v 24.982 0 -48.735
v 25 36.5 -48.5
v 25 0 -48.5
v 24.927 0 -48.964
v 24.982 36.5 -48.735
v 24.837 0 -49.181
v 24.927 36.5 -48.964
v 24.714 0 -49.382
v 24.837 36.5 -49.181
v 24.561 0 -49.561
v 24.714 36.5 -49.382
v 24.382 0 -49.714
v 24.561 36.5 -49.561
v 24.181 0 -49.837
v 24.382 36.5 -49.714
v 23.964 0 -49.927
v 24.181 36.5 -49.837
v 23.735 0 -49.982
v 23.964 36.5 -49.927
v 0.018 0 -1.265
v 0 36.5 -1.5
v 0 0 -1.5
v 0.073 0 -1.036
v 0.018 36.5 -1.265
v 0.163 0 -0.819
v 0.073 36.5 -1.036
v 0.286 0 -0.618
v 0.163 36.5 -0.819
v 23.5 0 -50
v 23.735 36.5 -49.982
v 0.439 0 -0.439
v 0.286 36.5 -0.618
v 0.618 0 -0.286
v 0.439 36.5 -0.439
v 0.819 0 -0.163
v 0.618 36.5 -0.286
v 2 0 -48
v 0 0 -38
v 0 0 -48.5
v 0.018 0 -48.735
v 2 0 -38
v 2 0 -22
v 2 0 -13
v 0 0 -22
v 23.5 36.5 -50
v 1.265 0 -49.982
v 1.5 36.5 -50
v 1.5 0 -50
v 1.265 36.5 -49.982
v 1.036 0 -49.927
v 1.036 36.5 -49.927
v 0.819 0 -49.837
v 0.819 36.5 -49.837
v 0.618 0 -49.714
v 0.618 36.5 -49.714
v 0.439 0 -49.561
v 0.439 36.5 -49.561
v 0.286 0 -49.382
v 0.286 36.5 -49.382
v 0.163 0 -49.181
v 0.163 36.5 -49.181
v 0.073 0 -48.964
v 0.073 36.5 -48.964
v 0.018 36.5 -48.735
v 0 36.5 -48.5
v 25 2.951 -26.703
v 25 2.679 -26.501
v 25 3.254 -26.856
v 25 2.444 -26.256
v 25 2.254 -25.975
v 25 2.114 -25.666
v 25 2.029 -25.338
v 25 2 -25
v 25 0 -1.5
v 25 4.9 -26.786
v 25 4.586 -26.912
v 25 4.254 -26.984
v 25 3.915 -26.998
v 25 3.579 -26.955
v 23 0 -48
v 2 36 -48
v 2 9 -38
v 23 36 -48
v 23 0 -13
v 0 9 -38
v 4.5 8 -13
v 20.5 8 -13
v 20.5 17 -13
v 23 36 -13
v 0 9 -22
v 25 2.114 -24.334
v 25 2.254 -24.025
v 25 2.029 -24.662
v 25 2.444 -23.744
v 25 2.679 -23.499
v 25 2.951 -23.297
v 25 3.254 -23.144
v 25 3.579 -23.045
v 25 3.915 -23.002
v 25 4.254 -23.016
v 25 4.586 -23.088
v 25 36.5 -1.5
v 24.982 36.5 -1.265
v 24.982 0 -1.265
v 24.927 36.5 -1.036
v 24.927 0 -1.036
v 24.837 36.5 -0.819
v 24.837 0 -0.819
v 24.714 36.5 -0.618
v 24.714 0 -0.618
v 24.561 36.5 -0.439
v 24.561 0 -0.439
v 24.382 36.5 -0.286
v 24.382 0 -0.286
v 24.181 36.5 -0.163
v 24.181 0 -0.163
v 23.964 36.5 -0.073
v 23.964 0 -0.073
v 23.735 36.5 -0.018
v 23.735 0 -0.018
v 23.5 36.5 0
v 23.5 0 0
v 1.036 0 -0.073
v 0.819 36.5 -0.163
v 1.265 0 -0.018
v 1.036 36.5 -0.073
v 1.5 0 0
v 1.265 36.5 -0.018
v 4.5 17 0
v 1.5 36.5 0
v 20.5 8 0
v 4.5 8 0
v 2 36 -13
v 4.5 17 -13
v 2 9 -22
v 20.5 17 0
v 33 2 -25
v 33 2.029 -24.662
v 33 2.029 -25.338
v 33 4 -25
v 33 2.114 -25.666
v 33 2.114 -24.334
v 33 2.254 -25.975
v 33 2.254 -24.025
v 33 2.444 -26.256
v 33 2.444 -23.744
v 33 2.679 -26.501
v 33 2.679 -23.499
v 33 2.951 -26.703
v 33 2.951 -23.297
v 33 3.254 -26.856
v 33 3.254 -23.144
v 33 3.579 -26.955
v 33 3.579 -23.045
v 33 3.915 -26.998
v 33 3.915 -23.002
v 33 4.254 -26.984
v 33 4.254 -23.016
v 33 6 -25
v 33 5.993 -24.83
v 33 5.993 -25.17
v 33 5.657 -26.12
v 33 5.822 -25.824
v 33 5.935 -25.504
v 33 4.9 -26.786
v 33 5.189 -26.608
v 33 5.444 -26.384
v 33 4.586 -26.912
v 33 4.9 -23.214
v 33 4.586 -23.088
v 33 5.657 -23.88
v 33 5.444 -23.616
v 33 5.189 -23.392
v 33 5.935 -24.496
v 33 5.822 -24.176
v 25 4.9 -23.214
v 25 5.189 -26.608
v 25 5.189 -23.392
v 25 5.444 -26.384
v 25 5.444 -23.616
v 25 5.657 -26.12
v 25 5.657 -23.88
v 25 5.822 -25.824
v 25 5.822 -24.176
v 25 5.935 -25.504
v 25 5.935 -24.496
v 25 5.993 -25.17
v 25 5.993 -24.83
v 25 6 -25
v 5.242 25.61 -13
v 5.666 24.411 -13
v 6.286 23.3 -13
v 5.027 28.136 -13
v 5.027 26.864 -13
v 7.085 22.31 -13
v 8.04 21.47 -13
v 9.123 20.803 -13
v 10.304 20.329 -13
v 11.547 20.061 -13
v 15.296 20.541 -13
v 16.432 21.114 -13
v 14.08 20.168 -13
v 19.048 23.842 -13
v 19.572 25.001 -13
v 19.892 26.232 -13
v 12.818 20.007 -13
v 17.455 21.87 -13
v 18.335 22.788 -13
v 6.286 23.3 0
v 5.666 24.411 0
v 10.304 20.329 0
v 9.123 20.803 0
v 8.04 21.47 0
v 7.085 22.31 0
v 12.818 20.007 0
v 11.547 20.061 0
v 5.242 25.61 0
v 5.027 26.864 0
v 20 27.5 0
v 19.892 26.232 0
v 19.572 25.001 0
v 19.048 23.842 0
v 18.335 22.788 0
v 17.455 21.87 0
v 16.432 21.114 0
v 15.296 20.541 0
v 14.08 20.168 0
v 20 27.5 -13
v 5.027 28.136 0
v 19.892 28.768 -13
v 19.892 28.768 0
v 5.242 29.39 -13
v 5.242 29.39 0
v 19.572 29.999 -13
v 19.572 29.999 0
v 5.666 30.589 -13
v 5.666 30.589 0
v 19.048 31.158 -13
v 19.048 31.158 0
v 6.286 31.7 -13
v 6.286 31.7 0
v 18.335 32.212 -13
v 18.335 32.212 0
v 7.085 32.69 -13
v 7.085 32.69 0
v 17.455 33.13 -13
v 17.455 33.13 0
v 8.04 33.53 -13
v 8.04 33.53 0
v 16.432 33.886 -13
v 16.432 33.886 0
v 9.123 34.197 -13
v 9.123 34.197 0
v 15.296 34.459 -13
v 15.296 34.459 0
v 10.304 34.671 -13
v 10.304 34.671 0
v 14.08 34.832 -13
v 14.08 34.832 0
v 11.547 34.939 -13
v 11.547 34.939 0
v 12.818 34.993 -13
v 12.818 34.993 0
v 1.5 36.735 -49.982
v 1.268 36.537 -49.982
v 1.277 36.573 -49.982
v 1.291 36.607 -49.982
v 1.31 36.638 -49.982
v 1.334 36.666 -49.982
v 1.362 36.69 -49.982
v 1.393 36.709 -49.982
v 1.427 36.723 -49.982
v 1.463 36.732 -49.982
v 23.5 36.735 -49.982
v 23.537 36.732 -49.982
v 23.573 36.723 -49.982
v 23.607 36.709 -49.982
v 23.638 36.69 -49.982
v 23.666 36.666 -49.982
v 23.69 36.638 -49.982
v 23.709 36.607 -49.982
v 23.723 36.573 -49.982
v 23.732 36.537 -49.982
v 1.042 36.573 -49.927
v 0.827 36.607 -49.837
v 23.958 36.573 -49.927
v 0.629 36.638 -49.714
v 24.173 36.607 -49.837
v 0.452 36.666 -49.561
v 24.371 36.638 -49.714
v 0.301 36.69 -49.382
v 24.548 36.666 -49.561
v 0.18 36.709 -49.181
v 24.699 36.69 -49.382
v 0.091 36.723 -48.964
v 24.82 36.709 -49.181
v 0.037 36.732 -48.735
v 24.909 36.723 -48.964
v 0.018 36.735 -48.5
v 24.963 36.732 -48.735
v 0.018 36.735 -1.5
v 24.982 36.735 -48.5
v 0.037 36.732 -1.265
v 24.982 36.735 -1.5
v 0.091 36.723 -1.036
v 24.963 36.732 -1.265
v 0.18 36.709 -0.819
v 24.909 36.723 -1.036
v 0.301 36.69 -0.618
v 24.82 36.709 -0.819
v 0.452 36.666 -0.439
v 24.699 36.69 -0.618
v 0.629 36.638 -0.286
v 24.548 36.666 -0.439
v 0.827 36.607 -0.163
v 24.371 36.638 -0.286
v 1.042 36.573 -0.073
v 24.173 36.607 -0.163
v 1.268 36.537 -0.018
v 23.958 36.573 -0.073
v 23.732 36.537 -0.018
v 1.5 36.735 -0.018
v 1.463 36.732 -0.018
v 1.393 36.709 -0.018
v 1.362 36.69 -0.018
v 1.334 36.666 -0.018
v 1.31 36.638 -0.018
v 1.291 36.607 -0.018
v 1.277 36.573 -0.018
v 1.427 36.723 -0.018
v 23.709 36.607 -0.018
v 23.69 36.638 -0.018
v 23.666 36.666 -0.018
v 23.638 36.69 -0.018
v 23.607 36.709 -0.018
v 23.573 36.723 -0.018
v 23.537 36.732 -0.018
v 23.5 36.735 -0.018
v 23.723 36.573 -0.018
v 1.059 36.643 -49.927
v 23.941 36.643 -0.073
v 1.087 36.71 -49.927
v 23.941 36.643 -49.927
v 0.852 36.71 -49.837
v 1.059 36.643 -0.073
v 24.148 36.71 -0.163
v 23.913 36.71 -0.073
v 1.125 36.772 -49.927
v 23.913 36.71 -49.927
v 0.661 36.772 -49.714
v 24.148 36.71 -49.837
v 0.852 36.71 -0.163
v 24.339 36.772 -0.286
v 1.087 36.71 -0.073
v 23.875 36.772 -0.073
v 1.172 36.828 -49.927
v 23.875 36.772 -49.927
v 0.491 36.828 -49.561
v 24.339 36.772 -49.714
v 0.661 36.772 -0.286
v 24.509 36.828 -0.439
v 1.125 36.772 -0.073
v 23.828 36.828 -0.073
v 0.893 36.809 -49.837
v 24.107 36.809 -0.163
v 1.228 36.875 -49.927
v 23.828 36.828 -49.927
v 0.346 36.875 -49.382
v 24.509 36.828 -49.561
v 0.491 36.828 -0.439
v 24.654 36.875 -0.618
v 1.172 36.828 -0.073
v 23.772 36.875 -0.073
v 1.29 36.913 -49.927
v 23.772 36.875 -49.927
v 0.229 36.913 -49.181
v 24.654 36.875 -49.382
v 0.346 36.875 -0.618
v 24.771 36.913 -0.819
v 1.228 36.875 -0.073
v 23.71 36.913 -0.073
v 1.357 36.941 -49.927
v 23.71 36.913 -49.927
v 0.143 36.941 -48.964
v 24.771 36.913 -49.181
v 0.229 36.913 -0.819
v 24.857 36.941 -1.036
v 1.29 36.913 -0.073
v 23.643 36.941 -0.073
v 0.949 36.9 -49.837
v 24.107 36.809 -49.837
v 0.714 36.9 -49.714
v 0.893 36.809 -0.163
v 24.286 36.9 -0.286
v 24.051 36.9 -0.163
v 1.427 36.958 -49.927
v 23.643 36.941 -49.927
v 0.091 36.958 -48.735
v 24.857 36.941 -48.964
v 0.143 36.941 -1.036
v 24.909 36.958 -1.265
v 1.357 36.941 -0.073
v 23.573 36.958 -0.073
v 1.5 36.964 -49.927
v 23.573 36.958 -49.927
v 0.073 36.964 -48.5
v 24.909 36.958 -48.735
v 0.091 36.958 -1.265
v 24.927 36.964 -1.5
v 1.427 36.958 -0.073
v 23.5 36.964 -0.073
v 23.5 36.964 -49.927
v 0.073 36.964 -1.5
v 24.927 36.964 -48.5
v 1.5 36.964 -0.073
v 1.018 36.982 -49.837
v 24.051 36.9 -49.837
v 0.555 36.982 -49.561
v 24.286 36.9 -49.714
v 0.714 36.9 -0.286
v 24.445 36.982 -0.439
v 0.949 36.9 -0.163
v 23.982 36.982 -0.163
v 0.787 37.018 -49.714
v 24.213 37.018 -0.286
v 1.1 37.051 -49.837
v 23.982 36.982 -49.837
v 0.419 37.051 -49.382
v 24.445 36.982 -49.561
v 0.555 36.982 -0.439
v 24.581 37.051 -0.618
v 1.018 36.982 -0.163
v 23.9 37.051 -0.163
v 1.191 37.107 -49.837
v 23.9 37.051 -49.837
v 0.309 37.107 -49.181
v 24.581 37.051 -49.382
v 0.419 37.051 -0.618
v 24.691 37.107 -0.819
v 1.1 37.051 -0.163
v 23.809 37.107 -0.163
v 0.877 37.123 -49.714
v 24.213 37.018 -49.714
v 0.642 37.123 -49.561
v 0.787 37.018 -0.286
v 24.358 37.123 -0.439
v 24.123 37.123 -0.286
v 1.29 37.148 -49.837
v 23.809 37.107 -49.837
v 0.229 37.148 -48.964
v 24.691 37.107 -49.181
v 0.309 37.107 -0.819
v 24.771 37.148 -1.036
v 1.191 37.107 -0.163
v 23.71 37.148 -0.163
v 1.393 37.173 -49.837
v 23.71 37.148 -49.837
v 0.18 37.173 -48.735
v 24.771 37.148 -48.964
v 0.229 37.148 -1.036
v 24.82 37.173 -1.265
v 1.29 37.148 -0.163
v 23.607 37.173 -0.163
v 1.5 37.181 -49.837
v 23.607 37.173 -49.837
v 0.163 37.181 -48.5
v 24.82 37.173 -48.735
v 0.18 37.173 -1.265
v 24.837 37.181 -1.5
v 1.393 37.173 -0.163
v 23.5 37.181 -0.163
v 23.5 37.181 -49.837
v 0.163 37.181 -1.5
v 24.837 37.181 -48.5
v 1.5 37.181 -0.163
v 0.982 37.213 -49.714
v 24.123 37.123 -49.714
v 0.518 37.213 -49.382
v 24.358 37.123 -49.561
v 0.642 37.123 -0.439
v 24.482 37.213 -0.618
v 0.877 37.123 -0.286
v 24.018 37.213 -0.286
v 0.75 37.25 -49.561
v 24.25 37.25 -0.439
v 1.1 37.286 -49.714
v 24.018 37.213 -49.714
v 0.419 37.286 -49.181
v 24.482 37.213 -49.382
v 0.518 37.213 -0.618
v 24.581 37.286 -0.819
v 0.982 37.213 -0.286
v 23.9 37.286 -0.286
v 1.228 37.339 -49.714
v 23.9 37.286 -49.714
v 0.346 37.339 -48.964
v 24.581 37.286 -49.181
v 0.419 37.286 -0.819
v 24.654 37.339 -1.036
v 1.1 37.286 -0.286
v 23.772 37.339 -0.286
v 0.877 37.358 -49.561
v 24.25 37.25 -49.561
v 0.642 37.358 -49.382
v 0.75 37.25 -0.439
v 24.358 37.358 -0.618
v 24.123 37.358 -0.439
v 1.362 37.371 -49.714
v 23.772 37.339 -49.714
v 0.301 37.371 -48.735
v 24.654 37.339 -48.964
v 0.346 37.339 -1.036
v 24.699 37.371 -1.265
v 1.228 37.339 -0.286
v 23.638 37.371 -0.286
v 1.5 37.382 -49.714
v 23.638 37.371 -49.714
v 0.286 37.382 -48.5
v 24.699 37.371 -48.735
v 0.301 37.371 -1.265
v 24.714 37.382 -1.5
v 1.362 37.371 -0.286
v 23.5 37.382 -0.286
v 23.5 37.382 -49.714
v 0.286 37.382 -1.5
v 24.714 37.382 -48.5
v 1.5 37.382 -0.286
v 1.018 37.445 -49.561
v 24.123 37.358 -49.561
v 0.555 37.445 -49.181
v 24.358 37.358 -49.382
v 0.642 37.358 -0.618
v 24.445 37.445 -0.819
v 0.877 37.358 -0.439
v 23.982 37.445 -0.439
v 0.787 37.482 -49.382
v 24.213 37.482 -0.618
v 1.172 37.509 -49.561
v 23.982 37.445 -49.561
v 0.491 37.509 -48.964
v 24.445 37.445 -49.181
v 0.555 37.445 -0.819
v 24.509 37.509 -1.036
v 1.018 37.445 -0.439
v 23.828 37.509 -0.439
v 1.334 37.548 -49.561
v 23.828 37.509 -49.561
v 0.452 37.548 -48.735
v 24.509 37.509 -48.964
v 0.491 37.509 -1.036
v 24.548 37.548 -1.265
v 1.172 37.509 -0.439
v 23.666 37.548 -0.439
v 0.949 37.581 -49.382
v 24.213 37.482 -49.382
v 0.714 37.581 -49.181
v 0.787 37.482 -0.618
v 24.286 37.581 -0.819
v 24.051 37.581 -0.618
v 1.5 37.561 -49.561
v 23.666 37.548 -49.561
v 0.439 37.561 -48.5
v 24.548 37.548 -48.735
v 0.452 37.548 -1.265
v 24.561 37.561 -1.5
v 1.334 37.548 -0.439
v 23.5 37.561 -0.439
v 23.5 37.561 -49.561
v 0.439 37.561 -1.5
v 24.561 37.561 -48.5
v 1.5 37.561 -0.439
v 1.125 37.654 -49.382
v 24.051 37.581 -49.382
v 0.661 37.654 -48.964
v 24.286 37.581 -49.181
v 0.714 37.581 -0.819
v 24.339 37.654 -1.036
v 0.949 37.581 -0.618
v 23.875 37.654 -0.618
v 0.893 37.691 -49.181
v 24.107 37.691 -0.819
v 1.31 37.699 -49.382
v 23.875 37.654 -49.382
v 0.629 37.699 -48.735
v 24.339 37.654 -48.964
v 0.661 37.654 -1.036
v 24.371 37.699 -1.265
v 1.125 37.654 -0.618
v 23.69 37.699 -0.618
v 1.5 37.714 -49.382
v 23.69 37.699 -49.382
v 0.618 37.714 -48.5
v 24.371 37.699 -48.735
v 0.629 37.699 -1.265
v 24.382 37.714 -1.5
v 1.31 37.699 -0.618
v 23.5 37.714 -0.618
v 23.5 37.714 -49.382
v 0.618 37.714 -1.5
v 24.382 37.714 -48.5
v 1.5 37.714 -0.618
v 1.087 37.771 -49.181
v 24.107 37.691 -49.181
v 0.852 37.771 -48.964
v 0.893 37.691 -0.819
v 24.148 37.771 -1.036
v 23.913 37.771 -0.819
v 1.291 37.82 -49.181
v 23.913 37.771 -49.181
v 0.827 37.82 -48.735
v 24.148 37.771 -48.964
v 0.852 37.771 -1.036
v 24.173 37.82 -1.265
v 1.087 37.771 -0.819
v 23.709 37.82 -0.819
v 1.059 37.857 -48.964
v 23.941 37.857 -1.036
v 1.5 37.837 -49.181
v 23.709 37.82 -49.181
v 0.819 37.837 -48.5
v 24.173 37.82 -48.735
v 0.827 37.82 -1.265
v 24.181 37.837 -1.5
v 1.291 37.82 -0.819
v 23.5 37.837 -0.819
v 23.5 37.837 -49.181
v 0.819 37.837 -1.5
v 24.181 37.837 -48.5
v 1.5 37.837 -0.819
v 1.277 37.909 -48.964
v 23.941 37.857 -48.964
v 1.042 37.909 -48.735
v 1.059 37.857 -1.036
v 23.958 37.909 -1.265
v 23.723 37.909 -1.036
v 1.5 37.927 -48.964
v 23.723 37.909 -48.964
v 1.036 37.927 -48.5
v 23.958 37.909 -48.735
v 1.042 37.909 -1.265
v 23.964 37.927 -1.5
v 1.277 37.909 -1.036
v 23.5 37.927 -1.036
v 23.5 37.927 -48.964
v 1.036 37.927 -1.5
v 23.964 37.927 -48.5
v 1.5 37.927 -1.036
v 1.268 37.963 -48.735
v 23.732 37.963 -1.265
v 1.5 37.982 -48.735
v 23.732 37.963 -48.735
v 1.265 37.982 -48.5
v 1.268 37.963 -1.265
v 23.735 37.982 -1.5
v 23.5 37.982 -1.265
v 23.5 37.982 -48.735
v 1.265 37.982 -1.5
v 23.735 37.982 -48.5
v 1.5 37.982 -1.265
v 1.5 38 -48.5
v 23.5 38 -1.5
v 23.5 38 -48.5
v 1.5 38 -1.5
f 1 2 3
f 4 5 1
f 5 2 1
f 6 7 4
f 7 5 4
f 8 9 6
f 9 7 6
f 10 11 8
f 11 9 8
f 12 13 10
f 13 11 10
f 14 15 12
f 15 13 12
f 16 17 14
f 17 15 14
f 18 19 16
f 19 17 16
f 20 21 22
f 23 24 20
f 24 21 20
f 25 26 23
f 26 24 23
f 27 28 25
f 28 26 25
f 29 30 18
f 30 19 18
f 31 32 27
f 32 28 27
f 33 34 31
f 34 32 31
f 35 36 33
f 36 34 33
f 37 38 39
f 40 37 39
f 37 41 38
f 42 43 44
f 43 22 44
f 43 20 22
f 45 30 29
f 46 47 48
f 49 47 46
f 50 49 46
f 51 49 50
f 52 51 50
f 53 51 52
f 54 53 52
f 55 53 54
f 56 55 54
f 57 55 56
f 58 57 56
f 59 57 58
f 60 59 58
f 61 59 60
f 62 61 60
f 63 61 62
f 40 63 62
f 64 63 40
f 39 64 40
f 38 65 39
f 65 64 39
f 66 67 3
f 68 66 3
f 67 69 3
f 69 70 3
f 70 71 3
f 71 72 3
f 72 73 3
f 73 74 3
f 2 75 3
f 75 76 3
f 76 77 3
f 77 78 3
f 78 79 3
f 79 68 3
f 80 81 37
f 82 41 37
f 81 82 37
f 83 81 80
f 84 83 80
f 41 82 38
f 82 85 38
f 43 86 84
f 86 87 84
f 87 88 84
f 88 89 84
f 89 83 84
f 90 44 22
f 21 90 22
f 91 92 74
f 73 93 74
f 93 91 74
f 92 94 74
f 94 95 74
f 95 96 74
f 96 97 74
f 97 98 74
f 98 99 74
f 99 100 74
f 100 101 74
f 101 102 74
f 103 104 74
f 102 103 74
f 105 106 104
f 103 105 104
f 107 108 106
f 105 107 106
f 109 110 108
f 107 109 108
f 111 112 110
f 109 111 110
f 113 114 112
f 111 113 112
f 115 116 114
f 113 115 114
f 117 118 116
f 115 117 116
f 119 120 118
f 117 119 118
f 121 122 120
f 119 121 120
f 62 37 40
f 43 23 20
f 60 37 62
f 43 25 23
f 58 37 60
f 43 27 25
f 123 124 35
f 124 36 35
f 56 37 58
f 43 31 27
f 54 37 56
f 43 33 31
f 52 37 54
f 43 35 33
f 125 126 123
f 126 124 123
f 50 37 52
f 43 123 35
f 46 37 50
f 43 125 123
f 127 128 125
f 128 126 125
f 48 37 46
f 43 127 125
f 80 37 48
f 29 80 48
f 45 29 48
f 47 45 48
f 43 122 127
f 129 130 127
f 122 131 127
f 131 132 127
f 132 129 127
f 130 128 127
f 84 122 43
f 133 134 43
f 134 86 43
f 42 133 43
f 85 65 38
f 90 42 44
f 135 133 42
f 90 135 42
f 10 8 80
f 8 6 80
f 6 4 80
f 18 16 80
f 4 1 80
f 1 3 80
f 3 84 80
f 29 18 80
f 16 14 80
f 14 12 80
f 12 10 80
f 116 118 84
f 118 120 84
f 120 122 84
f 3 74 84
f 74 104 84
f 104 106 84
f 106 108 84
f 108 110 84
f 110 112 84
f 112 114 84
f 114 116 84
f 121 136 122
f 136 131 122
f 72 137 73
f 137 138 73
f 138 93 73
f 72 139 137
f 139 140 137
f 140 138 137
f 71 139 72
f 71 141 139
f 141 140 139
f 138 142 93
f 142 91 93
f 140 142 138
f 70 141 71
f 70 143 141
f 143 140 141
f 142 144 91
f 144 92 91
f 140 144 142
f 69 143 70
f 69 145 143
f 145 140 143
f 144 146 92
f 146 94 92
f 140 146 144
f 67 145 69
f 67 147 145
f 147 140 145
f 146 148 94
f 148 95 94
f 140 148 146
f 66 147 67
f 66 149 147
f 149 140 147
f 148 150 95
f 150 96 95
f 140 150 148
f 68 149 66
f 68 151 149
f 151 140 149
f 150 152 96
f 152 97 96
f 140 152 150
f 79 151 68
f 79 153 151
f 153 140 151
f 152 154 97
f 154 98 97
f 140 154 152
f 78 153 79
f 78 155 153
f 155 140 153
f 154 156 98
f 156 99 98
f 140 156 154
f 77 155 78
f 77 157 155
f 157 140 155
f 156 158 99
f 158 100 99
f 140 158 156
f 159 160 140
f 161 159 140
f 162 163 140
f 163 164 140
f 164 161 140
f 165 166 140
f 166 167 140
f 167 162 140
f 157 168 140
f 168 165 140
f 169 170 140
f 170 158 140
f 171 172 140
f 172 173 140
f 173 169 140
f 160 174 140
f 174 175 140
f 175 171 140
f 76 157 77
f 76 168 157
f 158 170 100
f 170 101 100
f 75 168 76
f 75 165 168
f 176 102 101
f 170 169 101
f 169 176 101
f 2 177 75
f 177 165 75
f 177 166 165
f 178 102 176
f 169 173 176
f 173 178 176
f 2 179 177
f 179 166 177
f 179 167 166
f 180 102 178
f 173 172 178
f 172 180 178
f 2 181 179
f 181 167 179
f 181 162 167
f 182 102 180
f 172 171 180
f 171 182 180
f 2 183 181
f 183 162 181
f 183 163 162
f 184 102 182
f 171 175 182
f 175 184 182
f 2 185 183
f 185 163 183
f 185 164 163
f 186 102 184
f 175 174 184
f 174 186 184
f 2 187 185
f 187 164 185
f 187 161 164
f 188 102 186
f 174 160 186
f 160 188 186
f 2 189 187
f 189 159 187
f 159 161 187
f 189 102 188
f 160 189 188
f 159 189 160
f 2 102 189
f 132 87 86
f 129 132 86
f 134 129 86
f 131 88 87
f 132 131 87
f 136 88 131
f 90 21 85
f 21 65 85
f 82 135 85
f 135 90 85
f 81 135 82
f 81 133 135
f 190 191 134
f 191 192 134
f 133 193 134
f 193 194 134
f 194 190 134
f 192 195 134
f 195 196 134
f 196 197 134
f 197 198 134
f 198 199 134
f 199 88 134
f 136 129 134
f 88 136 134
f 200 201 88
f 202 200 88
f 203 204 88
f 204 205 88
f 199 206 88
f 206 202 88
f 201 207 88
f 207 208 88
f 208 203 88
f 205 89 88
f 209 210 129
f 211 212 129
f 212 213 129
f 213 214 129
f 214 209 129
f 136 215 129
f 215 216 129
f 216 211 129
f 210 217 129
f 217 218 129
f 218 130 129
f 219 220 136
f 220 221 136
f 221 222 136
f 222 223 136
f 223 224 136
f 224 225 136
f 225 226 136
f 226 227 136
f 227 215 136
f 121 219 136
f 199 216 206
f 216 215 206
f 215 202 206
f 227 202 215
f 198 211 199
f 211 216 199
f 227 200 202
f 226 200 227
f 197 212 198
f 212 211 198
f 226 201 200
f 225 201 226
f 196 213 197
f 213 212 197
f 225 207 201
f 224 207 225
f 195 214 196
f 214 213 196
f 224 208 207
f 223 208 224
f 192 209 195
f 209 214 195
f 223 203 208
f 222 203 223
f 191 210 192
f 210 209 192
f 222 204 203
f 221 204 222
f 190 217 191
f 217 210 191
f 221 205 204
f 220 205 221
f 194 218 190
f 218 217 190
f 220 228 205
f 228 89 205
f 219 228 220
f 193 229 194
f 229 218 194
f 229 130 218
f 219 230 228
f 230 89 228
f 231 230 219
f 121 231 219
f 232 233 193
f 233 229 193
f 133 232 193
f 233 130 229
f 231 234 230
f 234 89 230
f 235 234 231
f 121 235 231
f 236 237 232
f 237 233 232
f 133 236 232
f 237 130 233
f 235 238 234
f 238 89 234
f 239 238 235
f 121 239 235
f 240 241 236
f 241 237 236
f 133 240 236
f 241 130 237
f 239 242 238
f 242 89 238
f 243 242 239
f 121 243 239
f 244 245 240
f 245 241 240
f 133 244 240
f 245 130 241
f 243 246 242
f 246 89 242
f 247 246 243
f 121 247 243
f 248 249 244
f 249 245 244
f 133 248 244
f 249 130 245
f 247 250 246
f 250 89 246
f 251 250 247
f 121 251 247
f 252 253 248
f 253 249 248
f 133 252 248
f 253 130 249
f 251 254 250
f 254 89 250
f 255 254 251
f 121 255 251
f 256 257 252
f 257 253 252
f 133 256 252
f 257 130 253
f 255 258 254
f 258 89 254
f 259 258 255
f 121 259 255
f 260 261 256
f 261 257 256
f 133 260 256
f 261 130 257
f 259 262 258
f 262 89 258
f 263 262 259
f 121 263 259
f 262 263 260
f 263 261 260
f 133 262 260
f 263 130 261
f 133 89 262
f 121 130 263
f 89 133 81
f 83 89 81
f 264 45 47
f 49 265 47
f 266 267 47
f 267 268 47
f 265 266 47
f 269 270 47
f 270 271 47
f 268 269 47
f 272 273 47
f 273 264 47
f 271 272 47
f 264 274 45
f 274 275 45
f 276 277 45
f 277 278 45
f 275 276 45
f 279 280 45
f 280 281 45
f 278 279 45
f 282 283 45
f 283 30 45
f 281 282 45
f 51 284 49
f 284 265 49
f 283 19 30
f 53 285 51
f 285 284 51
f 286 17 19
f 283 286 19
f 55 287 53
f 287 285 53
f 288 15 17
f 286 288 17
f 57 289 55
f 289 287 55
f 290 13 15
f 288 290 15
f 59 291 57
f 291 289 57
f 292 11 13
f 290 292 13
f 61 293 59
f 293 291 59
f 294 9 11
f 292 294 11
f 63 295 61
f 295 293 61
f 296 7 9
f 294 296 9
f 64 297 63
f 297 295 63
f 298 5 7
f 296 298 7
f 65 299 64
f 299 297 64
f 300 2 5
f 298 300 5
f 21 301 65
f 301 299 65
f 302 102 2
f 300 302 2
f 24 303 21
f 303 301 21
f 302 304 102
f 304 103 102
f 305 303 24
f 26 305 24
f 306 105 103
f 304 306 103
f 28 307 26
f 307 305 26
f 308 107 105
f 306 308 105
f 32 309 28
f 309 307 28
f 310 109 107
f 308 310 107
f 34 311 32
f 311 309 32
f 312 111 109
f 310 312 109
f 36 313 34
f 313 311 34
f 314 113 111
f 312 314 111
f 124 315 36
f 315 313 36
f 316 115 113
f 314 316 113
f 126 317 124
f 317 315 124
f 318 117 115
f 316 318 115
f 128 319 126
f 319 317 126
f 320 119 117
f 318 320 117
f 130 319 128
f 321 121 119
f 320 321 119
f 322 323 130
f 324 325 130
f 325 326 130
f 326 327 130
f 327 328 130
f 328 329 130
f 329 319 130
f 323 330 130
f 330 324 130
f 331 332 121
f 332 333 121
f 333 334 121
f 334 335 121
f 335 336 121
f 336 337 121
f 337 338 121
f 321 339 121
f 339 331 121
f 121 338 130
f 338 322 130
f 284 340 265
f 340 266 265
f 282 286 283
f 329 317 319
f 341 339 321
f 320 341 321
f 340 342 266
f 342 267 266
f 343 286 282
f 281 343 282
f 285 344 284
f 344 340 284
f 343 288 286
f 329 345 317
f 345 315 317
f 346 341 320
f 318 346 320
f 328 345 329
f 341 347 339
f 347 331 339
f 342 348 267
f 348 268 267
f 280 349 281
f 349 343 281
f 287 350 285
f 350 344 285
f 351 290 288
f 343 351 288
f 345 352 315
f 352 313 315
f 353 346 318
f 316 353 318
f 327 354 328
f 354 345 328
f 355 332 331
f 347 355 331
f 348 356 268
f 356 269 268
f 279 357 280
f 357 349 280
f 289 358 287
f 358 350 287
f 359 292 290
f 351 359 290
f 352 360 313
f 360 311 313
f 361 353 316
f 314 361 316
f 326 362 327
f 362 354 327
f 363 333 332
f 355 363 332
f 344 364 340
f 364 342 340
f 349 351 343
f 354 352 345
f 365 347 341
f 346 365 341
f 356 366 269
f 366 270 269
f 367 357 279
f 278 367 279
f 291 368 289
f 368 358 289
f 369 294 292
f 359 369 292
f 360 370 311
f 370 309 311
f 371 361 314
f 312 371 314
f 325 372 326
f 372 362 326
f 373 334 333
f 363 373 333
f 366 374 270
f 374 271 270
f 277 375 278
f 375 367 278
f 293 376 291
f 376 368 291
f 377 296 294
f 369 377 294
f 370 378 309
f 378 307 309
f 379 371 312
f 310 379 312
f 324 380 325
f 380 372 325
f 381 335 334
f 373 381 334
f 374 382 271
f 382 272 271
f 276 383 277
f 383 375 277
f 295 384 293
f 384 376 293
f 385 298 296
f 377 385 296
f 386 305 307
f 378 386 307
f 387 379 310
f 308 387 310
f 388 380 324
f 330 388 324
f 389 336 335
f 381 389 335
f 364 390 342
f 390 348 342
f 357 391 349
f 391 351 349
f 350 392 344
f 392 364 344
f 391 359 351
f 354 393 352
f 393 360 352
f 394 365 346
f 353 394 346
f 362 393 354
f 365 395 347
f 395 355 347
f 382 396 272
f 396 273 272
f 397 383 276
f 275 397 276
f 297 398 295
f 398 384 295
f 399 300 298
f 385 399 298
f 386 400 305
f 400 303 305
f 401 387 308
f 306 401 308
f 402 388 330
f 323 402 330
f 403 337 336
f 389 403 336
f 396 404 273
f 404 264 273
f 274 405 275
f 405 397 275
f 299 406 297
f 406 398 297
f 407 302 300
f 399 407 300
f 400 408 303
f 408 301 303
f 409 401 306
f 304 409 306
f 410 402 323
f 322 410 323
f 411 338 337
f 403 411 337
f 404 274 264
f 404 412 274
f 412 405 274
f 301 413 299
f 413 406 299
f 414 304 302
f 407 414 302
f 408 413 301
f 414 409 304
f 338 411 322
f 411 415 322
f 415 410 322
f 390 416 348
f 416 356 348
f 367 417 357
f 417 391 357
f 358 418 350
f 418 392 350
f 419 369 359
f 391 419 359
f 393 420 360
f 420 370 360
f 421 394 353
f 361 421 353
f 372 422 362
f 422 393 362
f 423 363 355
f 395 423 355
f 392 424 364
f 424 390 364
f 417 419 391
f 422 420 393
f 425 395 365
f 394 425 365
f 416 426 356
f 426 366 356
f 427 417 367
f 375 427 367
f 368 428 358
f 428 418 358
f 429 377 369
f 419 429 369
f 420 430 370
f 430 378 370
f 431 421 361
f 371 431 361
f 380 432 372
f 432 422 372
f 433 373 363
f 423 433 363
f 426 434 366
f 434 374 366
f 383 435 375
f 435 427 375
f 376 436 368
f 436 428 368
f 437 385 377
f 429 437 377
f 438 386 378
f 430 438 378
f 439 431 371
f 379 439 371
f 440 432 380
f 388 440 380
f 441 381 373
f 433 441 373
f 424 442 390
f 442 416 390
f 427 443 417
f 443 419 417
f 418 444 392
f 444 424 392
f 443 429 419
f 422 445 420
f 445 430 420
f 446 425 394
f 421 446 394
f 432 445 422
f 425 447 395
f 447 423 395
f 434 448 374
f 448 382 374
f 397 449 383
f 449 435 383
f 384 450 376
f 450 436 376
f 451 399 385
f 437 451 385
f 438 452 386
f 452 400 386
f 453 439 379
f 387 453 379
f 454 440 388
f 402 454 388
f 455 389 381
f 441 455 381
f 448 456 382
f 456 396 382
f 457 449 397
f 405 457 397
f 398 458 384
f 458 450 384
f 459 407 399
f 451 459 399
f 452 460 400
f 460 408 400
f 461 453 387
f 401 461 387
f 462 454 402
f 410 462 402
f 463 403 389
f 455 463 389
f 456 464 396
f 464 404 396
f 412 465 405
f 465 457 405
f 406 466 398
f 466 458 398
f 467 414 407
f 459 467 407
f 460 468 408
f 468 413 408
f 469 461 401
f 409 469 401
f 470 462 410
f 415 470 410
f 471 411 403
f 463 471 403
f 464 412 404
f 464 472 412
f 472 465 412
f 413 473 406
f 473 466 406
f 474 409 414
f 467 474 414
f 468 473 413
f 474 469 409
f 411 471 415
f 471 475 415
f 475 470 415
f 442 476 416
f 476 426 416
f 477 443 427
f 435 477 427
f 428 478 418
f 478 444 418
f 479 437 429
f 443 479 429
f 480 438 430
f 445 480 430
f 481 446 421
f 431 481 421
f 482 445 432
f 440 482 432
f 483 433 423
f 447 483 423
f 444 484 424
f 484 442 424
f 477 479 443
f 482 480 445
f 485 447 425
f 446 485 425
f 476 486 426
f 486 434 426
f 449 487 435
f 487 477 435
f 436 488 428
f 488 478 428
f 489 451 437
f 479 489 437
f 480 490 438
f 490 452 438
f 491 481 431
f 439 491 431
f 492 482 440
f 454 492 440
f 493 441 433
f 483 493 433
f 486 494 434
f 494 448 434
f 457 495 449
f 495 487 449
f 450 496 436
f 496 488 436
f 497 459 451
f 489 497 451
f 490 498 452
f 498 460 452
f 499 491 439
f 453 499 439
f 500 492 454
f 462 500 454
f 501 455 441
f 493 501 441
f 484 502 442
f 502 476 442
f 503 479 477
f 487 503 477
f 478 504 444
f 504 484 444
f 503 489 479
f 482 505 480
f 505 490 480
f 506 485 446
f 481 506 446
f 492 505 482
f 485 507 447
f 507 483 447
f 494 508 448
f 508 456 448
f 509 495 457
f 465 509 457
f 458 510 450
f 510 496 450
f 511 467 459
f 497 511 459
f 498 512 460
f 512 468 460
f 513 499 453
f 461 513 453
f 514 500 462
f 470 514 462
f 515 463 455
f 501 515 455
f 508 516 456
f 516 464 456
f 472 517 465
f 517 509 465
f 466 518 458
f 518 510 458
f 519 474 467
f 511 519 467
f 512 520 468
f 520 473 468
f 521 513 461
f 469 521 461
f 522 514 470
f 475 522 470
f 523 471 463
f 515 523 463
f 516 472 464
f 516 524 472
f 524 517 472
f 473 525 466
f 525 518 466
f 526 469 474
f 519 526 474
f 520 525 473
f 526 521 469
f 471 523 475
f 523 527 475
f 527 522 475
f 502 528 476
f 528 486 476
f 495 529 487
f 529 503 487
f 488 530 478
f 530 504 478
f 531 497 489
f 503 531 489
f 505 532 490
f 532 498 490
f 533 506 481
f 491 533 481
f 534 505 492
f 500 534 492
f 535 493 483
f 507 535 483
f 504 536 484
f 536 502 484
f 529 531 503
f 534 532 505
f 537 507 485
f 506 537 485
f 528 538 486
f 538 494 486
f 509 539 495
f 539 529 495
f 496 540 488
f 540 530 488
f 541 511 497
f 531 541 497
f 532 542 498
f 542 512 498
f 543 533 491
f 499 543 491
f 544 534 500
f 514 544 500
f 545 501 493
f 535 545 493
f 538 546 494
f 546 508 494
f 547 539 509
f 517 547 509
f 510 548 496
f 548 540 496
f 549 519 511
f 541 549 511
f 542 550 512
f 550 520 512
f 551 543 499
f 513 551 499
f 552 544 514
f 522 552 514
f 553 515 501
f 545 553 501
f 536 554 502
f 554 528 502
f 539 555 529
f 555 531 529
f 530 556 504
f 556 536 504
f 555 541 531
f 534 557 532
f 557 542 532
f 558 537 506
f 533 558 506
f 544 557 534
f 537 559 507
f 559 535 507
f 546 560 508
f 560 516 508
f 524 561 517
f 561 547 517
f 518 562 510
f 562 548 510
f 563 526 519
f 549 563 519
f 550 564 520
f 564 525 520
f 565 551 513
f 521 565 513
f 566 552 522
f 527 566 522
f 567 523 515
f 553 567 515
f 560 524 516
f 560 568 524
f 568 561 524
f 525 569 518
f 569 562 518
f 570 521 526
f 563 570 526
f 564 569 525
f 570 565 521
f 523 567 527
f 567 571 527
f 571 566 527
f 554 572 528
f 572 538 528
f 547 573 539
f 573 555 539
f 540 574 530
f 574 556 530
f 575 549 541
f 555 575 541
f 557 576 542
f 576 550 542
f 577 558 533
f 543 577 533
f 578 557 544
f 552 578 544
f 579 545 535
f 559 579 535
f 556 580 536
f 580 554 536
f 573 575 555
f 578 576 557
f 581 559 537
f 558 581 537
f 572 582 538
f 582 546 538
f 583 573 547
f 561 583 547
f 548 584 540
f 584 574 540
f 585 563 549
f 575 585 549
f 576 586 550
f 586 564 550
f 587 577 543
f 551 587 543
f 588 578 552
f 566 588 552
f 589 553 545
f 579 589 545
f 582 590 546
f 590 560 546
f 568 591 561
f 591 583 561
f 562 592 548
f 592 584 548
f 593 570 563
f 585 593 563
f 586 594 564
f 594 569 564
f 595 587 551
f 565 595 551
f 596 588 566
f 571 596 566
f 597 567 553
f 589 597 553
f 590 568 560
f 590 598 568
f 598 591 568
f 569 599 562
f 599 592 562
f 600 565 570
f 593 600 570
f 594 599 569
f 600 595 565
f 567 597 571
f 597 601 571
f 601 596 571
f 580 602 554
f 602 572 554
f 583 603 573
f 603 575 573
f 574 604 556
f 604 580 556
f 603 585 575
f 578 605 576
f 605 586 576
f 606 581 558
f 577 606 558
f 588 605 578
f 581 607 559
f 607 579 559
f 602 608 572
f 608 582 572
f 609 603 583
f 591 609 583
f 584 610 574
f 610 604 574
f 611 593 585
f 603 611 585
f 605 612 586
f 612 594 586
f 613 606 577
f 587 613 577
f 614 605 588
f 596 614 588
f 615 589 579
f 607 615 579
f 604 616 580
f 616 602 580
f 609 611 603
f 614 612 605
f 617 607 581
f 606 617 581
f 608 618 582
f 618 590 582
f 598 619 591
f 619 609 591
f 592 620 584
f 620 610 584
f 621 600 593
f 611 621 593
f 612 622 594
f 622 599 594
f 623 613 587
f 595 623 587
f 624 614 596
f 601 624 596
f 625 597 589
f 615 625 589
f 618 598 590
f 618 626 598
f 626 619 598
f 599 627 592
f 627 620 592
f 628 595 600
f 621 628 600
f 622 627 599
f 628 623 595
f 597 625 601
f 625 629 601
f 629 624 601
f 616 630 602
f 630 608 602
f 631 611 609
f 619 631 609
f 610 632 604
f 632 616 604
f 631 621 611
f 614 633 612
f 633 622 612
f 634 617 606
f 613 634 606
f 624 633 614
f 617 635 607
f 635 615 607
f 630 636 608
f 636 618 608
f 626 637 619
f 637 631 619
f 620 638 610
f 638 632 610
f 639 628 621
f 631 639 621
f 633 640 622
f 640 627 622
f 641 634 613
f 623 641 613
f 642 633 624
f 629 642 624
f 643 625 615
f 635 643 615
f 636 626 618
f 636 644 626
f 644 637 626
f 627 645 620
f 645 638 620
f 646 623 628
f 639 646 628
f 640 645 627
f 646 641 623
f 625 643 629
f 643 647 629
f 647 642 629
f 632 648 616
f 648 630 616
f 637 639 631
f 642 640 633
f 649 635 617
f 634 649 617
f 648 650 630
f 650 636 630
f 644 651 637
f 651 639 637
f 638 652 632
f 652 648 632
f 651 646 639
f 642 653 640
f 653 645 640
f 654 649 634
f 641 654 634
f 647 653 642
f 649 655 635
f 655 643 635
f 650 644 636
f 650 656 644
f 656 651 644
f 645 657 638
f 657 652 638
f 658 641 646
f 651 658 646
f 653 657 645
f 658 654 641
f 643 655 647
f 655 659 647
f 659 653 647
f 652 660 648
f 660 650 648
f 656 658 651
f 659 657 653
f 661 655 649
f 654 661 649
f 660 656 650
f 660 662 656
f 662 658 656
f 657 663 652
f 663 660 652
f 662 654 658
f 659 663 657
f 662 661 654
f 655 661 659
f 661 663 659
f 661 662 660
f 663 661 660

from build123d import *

# Parameters (mm, degrees)
SKETCH_1_W          = 25
SKETCH_1_H          = 38
EXTRUDE_1_DEPTH     = 50
SKETCH_2_R          = 7.5
CUT_EXTRUDE_1_DEPTH = 13
SKETCH_3_W          = 21
SKETCH_3_H          = 36
CUT_EXTRUDE_2_DEPTH = 35
SKETCH_4_W          = 16
SKETCH_4_H          = 9
CUT_EXTRUDE_3_DEPTH = 10
FILLET_1_R          = 1.5
FILLET_2_R          = 1.5
FILLET_3_R          = 1.5
SKETCH_5_R          = 2
EXTRUDE_2_DEPTH     = 8
CUT_EXTRUDE_4_REACH = 72.944
SKETCH_6_W          = 16
SKETCH_6_H          = 9


with BuildPart() as part:
    # 草图1 → 凸台-拉伸1 (new body)
    with BuildSketch(Plane.XY):
        with Locations((12.5, 19)):
            Rectangle(SKETCH_1_W, SKETCH_1_H)
    extrude(amount=-EXTRUDE_1_DEPTH)

    # 草图2 → 切除-拉伸1 (cut)
    with BuildSketch(Plane.XY):
        with Locations((12.5, 27.5)):
            Circle(SKETCH_2_R)
    extrude(amount=-CUT_EXTRUDE_1_DEPTH, mode=Mode.SUBTRACT)

    # 草图3 → 切除-拉伸2 (cut)
    with BuildSketch(Plane.XY.offset(-13)):
        with Locations((12.5, 18)):
            Rectangle(SKETCH_3_W, SKETCH_3_H)
    extrude(amount=-CUT_EXTRUDE_2_DEPTH, mode=Mode.SUBTRACT)

    # 草图4 → 切除-拉伸3 (cut)
    with BuildSketch(Plane(origin=(2, 0, 0), x_dir=(0, 0, -1), z_dir=(1, 0, 0))):
        with Locations((30, 4.5)):
            Rectangle(SKETCH_4_W, SKETCH_4_H)
    extrude(amount=-CUT_EXTRUDE_3_DEPTH, mode=Mode.SUBTRACT)

    # 圆角1
    fillet_1_edges = [part.edges().sort_by_distance(p)[0] for p in [
        (12.5, 38, -50),
        (12.5, 38, 0),
        (0, 38, -25),
        (25, 38, -25),
    ]]
    fillet(fillet_1_edges, radius=FILLET_1_R)

    # 圆角2
    # the kernel refuses this fillet: 1.5 mm, written as the material it takes off along each edge
    with BuildSketch(Plane(origin=(1.5, 36.5, -48.5), x_dir=(0, 0, -1), z_dir=(-1, 0, 0))) as fillet_2_piece_1_section:
        Polygon((0, 0), (FILLET_2_R, 0), (FILLET_2_R, -FILLET_2_R), (0, -FILLET_2_R), align=None)
    fillet_2_piece_1 = extrude(amount=FILLET_2_R, mode=Mode.PRIVATE)
    fillet_2_piece_1 = fillet_2_piece_1 - Plane(origin=(1.5, 36.5, -48.5), x_dir=(0, -0.7071067811865475, 0.7071067811865475), z_dir=(-1, 0, 0)) * Sphere(FILLET_2_R, mode=Mode.PRIVATE)
    add(fillet_2_piece_1, mode=Mode.SUBTRACT)
    with BuildSketch(Plane(origin=(1.5, 36.5, -1.5), x_dir=(0, 0, 1), z_dir=(-1, 0, 0))) as fillet_2_piece_2_section:
        Polygon((0, 0), (FILLET_2_R, 0), (FILLET_2_R, FILLET_2_R), (0, FILLET_2_R), align=None)
    fillet_2_piece_2 = extrude(amount=FILLET_2_R, mode=Mode.PRIVATE)
    fillet_2_piece_2 = fillet_2_piece_2 - Plane(origin=(1.5, 36.5, -1.5), x_dir=(0, -0.7071067811865475, -0.7071067811865475), z_dir=(-1, 0, 0)) * Sphere(FILLET_2_R, mode=Mode.PRIVATE)
    add(fillet_2_piece_2, mode=Mode.SUBTRACT)
    with BuildSketch(Plane(origin=(23.5, 36.5, -48.5), x_dir=(1, 0, 0), z_dir=(0, 0, -1))) as fillet_2_piece_3_section:
        Polygon((0, 0), (FILLET_2_R, 0), (FILLET_2_R, -FILLET_2_R), (0, -FILLET_2_R), align=None)
    fillet_2_piece_3 = extrude(amount=FILLET_2_R, mode=Mode.PRIVATE)
    fillet_2_piece_3 = fillet_2_piece_3 - Plane(origin=(23.5, 36.5, -48.5), x_dir=(-0.7071067811865476, -0.7071067811865476, 0), z_dir=(0, 0, -1)) * Sphere(FILLET_2_R, mode=Mode.PRIVATE)
    add(fillet_2_piece_3, mode=Mode.SUBTRACT)
    with BuildSketch(Plane(origin=(0, -3.75, -50), x_dir=(0, 0, 1), z_dir=(0, 1, 0))) as fillet_2_piece_4:
        with BuildLine():
            CenterArc((FILLET_2_R, FILLET_2_R), FILLET_2_R, 180, 90)
            Line((0, FILLET_2_R), (0, 0))
            Line((0, 0), (FILLET_2_R, 0))
        make_face()
    extrude(amount=40.25, mode=Mode.SUBTRACT)
    with BuildSketch(Plane(origin=(0, -3.75, 0), x_dir=(0, 0, -1), z_dir=(0, 1, 0)), Plane(origin=(25, 36.5, -50), x_dir=(-1, 0, 0), z_dir=(0, -1, 0))) as fillet_2_piece_5:
        with BuildLine():
            CenterArc((FILLET_2_R, -FILLET_2_R), FILLET_2_R, 90, 90)
            Line((0, -FILLET_2_R), (0, 0))
            Line((0, 0), (FILLET_2_R, 0))
        make_face()
    extrude(amount=40.25, mode=Mode.SUBTRACT)

    # 圆角3
    # the kernel refuses this fillet: 1.5 mm, written as the material it takes off along each edge
    with BuildSketch(Plane(origin=(23.5, 36.5, -1.5), x_dir=(1, 0, 0), z_dir=(0, 0, 1))) as fillet_3_piece_1_section:
        Polygon((0, 0), (FILLET_3_R, 0), (FILLET_3_R, FILLET_3_R), (0, FILLET_3_R), align=None)
    fillet_3_piece_1 = extrude(amount=FILLET_3_R, mode=Mode.PRIVATE)
    fillet_3_piece_1 = fillet_3_piece_1 - Plane(origin=(23.5, 36.5, -1.5), x_dir=(-0.7071067811865476, -0.7071067811865476, 0), z_dir=(0, 0, 1)) * Sphere(FILLET_3_R, mode=Mode.PRIVATE)
    add(fillet_3_piece_1, mode=Mode.SUBTRACT)
    with BuildSketch(Plane(origin=(25, 36.5, 0), x_dir=(-1, 0, 0), z_dir=(0, -1, 0))) as fillet_3_piece_2:
        with BuildLine():
            CenterArc((FILLET_3_R, FILLET_3_R), FILLET_3_R, 180, 90)
            Line((0, FILLET_3_R), (0, 0))
            Line((0, 0), (FILLET_3_R, 0))
        make_face()
    extrude(amount=40.25, mode=Mode.SUBTRACT)

    # 草图5 → 凸台-拉伸2 (add)
    with BuildSketch(Plane(origin=(25, 0, 0), x_dir=(0, 0, -1), z_dir=(1, 0, 0))):
        with Locations(Location((25, 4, 0), (0, 0, 90))):
            Circle(SKETCH_5_R)
    extrude(amount=EXTRUDE_2_DEPTH)

    # 草图6 → 切除-拉伸4 (cut, up to next)
    with BuildSketch(Plane.XY, mode=Mode.PRIVATE) as cut_extrude_4_sk1:
        with Locations((12.5, 12.5)):
            Rectangle(SKETCH_6_W, SKETCH_6_H)
    cut_extrude_4_tool1 = extrude(cut_extrude_4_sk1.sketch, amount=-CUT_EXTRUDE_4_REACH, mode=Mode.PRIVATE) & part.part
    add(cut_extrude_4_tool1.solids().sort_by_distance((12.5, 12.5, 0))[0], mode=Mode.SUBTRACT)


solid = part.part
